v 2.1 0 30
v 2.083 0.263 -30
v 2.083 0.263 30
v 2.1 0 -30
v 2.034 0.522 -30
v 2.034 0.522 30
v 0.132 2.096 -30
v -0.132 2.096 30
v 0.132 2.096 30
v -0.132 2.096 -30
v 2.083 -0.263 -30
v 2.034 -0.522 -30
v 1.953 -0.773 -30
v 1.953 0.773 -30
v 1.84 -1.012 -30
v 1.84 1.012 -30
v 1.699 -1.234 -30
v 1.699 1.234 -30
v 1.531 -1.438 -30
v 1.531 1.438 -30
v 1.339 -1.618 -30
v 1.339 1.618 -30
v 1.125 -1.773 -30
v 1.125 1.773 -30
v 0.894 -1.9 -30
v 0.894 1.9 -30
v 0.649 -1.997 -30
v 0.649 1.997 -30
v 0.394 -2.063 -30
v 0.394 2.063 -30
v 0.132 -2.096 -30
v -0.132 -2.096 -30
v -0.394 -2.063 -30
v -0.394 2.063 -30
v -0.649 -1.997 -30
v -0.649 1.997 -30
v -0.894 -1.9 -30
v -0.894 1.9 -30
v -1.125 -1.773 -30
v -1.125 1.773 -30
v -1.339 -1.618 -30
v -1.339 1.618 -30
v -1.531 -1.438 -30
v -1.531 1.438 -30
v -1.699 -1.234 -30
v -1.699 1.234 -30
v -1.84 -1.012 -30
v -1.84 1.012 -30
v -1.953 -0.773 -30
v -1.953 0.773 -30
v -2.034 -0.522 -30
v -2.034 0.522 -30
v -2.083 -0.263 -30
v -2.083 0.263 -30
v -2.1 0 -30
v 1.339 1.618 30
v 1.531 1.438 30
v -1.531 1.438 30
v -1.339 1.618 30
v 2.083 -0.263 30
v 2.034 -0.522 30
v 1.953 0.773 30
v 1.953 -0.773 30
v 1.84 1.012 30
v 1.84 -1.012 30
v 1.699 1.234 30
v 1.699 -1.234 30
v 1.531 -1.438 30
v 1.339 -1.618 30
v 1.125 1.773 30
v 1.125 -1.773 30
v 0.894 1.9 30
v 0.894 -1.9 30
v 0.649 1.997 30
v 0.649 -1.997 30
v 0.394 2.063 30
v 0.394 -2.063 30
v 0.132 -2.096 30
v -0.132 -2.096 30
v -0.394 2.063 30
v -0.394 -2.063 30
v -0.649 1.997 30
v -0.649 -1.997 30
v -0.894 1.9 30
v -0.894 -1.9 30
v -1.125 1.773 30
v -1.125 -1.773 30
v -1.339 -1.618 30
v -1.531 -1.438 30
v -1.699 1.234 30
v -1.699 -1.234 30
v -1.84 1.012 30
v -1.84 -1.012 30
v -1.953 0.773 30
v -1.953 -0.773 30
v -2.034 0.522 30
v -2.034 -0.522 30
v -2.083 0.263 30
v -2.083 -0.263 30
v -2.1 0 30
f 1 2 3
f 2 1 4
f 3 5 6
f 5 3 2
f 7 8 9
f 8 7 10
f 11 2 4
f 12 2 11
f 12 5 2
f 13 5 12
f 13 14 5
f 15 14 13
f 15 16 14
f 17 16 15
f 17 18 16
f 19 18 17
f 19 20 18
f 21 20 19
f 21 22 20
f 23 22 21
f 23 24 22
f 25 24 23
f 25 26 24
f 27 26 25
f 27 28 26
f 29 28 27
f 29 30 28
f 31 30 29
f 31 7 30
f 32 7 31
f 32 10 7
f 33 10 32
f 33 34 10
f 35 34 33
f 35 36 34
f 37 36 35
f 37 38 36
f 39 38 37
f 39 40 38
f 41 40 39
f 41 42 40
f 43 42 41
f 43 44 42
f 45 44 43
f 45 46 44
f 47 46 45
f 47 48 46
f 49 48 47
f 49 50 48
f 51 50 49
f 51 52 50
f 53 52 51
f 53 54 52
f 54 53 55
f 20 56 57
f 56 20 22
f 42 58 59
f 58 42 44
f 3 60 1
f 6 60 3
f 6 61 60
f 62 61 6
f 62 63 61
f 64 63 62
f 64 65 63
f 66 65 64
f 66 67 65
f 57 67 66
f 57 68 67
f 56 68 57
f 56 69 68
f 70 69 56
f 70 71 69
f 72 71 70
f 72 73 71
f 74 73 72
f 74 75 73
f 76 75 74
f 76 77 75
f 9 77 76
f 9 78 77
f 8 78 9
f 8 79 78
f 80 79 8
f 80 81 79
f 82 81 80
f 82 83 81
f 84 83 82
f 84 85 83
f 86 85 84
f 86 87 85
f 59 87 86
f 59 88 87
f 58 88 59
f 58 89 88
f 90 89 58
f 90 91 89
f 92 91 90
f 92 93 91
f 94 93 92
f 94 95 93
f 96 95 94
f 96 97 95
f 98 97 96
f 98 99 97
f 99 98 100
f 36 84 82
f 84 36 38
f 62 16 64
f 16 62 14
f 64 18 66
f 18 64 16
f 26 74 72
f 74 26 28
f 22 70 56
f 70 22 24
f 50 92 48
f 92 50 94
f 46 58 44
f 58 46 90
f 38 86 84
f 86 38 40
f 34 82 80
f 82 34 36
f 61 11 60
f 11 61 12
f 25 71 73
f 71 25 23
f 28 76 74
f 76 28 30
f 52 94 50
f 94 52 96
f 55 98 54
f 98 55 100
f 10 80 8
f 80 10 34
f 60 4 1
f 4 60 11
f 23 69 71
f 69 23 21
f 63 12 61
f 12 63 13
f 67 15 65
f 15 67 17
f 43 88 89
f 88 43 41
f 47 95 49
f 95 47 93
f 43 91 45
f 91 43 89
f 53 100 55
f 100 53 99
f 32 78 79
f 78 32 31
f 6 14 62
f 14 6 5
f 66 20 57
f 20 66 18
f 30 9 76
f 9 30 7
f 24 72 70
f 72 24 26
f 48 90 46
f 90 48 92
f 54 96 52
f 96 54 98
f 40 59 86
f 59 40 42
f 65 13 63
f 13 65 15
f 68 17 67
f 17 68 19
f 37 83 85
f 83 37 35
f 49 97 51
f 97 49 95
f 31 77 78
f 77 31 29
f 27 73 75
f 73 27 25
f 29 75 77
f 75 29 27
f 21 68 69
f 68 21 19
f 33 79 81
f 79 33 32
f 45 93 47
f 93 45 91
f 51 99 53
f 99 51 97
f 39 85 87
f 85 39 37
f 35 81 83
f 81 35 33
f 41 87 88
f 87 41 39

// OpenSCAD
$fn = 50;


difference() {
	union() {
		translate(v = [0, 0, -30.0000000000]) {
			cylinder(h = 60, r = 2.1000000000);
		}
	}
	union() {
		translate(v = [0, 0, -100.0000000000]) {
			cylinder(h = 200, r = 0);
		}
	}
}
